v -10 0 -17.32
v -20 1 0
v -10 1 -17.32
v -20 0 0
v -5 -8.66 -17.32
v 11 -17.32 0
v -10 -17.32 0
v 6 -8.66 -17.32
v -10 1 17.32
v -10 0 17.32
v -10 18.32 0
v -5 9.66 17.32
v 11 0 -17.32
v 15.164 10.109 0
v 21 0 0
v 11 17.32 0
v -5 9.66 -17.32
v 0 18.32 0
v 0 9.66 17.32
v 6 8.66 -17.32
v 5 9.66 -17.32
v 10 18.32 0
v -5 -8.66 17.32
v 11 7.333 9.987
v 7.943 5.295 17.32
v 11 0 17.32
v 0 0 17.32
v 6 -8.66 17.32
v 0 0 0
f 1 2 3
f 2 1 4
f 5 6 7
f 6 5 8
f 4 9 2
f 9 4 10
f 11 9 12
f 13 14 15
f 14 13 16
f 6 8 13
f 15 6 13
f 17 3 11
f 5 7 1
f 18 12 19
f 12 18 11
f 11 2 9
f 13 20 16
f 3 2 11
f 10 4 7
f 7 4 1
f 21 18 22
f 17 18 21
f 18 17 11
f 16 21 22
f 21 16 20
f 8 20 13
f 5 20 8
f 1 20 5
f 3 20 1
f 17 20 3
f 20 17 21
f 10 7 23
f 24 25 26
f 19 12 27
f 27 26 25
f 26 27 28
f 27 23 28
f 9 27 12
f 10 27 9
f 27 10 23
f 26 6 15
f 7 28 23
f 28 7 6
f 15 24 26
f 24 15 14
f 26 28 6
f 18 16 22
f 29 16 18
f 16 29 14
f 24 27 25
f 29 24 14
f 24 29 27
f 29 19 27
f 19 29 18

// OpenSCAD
module frustum(height, width, depth, radius, segments=6) {
  difference() {
    hull() {
      translate([0,0,0]) sphere(r=radius, $fn=segments);
      translate([1,0,0]) sphere(r=radius, $fn=segments);
      translate([0.5,0,0]) sphere(r=radius, $fn=segments);
      translate([0,1,0]) sphere(r=radius, $fn=segments);
    }
    linear_extrude(height = height, convexity = 10)
    polygon(points=[[0,0], [width, depth], [0, depth]]);
  }
}

// Parameters
radius = 20;
width = 30;
depth = 20;
height = 40;

// Call the module
frustum(height, width, depth, radius);
